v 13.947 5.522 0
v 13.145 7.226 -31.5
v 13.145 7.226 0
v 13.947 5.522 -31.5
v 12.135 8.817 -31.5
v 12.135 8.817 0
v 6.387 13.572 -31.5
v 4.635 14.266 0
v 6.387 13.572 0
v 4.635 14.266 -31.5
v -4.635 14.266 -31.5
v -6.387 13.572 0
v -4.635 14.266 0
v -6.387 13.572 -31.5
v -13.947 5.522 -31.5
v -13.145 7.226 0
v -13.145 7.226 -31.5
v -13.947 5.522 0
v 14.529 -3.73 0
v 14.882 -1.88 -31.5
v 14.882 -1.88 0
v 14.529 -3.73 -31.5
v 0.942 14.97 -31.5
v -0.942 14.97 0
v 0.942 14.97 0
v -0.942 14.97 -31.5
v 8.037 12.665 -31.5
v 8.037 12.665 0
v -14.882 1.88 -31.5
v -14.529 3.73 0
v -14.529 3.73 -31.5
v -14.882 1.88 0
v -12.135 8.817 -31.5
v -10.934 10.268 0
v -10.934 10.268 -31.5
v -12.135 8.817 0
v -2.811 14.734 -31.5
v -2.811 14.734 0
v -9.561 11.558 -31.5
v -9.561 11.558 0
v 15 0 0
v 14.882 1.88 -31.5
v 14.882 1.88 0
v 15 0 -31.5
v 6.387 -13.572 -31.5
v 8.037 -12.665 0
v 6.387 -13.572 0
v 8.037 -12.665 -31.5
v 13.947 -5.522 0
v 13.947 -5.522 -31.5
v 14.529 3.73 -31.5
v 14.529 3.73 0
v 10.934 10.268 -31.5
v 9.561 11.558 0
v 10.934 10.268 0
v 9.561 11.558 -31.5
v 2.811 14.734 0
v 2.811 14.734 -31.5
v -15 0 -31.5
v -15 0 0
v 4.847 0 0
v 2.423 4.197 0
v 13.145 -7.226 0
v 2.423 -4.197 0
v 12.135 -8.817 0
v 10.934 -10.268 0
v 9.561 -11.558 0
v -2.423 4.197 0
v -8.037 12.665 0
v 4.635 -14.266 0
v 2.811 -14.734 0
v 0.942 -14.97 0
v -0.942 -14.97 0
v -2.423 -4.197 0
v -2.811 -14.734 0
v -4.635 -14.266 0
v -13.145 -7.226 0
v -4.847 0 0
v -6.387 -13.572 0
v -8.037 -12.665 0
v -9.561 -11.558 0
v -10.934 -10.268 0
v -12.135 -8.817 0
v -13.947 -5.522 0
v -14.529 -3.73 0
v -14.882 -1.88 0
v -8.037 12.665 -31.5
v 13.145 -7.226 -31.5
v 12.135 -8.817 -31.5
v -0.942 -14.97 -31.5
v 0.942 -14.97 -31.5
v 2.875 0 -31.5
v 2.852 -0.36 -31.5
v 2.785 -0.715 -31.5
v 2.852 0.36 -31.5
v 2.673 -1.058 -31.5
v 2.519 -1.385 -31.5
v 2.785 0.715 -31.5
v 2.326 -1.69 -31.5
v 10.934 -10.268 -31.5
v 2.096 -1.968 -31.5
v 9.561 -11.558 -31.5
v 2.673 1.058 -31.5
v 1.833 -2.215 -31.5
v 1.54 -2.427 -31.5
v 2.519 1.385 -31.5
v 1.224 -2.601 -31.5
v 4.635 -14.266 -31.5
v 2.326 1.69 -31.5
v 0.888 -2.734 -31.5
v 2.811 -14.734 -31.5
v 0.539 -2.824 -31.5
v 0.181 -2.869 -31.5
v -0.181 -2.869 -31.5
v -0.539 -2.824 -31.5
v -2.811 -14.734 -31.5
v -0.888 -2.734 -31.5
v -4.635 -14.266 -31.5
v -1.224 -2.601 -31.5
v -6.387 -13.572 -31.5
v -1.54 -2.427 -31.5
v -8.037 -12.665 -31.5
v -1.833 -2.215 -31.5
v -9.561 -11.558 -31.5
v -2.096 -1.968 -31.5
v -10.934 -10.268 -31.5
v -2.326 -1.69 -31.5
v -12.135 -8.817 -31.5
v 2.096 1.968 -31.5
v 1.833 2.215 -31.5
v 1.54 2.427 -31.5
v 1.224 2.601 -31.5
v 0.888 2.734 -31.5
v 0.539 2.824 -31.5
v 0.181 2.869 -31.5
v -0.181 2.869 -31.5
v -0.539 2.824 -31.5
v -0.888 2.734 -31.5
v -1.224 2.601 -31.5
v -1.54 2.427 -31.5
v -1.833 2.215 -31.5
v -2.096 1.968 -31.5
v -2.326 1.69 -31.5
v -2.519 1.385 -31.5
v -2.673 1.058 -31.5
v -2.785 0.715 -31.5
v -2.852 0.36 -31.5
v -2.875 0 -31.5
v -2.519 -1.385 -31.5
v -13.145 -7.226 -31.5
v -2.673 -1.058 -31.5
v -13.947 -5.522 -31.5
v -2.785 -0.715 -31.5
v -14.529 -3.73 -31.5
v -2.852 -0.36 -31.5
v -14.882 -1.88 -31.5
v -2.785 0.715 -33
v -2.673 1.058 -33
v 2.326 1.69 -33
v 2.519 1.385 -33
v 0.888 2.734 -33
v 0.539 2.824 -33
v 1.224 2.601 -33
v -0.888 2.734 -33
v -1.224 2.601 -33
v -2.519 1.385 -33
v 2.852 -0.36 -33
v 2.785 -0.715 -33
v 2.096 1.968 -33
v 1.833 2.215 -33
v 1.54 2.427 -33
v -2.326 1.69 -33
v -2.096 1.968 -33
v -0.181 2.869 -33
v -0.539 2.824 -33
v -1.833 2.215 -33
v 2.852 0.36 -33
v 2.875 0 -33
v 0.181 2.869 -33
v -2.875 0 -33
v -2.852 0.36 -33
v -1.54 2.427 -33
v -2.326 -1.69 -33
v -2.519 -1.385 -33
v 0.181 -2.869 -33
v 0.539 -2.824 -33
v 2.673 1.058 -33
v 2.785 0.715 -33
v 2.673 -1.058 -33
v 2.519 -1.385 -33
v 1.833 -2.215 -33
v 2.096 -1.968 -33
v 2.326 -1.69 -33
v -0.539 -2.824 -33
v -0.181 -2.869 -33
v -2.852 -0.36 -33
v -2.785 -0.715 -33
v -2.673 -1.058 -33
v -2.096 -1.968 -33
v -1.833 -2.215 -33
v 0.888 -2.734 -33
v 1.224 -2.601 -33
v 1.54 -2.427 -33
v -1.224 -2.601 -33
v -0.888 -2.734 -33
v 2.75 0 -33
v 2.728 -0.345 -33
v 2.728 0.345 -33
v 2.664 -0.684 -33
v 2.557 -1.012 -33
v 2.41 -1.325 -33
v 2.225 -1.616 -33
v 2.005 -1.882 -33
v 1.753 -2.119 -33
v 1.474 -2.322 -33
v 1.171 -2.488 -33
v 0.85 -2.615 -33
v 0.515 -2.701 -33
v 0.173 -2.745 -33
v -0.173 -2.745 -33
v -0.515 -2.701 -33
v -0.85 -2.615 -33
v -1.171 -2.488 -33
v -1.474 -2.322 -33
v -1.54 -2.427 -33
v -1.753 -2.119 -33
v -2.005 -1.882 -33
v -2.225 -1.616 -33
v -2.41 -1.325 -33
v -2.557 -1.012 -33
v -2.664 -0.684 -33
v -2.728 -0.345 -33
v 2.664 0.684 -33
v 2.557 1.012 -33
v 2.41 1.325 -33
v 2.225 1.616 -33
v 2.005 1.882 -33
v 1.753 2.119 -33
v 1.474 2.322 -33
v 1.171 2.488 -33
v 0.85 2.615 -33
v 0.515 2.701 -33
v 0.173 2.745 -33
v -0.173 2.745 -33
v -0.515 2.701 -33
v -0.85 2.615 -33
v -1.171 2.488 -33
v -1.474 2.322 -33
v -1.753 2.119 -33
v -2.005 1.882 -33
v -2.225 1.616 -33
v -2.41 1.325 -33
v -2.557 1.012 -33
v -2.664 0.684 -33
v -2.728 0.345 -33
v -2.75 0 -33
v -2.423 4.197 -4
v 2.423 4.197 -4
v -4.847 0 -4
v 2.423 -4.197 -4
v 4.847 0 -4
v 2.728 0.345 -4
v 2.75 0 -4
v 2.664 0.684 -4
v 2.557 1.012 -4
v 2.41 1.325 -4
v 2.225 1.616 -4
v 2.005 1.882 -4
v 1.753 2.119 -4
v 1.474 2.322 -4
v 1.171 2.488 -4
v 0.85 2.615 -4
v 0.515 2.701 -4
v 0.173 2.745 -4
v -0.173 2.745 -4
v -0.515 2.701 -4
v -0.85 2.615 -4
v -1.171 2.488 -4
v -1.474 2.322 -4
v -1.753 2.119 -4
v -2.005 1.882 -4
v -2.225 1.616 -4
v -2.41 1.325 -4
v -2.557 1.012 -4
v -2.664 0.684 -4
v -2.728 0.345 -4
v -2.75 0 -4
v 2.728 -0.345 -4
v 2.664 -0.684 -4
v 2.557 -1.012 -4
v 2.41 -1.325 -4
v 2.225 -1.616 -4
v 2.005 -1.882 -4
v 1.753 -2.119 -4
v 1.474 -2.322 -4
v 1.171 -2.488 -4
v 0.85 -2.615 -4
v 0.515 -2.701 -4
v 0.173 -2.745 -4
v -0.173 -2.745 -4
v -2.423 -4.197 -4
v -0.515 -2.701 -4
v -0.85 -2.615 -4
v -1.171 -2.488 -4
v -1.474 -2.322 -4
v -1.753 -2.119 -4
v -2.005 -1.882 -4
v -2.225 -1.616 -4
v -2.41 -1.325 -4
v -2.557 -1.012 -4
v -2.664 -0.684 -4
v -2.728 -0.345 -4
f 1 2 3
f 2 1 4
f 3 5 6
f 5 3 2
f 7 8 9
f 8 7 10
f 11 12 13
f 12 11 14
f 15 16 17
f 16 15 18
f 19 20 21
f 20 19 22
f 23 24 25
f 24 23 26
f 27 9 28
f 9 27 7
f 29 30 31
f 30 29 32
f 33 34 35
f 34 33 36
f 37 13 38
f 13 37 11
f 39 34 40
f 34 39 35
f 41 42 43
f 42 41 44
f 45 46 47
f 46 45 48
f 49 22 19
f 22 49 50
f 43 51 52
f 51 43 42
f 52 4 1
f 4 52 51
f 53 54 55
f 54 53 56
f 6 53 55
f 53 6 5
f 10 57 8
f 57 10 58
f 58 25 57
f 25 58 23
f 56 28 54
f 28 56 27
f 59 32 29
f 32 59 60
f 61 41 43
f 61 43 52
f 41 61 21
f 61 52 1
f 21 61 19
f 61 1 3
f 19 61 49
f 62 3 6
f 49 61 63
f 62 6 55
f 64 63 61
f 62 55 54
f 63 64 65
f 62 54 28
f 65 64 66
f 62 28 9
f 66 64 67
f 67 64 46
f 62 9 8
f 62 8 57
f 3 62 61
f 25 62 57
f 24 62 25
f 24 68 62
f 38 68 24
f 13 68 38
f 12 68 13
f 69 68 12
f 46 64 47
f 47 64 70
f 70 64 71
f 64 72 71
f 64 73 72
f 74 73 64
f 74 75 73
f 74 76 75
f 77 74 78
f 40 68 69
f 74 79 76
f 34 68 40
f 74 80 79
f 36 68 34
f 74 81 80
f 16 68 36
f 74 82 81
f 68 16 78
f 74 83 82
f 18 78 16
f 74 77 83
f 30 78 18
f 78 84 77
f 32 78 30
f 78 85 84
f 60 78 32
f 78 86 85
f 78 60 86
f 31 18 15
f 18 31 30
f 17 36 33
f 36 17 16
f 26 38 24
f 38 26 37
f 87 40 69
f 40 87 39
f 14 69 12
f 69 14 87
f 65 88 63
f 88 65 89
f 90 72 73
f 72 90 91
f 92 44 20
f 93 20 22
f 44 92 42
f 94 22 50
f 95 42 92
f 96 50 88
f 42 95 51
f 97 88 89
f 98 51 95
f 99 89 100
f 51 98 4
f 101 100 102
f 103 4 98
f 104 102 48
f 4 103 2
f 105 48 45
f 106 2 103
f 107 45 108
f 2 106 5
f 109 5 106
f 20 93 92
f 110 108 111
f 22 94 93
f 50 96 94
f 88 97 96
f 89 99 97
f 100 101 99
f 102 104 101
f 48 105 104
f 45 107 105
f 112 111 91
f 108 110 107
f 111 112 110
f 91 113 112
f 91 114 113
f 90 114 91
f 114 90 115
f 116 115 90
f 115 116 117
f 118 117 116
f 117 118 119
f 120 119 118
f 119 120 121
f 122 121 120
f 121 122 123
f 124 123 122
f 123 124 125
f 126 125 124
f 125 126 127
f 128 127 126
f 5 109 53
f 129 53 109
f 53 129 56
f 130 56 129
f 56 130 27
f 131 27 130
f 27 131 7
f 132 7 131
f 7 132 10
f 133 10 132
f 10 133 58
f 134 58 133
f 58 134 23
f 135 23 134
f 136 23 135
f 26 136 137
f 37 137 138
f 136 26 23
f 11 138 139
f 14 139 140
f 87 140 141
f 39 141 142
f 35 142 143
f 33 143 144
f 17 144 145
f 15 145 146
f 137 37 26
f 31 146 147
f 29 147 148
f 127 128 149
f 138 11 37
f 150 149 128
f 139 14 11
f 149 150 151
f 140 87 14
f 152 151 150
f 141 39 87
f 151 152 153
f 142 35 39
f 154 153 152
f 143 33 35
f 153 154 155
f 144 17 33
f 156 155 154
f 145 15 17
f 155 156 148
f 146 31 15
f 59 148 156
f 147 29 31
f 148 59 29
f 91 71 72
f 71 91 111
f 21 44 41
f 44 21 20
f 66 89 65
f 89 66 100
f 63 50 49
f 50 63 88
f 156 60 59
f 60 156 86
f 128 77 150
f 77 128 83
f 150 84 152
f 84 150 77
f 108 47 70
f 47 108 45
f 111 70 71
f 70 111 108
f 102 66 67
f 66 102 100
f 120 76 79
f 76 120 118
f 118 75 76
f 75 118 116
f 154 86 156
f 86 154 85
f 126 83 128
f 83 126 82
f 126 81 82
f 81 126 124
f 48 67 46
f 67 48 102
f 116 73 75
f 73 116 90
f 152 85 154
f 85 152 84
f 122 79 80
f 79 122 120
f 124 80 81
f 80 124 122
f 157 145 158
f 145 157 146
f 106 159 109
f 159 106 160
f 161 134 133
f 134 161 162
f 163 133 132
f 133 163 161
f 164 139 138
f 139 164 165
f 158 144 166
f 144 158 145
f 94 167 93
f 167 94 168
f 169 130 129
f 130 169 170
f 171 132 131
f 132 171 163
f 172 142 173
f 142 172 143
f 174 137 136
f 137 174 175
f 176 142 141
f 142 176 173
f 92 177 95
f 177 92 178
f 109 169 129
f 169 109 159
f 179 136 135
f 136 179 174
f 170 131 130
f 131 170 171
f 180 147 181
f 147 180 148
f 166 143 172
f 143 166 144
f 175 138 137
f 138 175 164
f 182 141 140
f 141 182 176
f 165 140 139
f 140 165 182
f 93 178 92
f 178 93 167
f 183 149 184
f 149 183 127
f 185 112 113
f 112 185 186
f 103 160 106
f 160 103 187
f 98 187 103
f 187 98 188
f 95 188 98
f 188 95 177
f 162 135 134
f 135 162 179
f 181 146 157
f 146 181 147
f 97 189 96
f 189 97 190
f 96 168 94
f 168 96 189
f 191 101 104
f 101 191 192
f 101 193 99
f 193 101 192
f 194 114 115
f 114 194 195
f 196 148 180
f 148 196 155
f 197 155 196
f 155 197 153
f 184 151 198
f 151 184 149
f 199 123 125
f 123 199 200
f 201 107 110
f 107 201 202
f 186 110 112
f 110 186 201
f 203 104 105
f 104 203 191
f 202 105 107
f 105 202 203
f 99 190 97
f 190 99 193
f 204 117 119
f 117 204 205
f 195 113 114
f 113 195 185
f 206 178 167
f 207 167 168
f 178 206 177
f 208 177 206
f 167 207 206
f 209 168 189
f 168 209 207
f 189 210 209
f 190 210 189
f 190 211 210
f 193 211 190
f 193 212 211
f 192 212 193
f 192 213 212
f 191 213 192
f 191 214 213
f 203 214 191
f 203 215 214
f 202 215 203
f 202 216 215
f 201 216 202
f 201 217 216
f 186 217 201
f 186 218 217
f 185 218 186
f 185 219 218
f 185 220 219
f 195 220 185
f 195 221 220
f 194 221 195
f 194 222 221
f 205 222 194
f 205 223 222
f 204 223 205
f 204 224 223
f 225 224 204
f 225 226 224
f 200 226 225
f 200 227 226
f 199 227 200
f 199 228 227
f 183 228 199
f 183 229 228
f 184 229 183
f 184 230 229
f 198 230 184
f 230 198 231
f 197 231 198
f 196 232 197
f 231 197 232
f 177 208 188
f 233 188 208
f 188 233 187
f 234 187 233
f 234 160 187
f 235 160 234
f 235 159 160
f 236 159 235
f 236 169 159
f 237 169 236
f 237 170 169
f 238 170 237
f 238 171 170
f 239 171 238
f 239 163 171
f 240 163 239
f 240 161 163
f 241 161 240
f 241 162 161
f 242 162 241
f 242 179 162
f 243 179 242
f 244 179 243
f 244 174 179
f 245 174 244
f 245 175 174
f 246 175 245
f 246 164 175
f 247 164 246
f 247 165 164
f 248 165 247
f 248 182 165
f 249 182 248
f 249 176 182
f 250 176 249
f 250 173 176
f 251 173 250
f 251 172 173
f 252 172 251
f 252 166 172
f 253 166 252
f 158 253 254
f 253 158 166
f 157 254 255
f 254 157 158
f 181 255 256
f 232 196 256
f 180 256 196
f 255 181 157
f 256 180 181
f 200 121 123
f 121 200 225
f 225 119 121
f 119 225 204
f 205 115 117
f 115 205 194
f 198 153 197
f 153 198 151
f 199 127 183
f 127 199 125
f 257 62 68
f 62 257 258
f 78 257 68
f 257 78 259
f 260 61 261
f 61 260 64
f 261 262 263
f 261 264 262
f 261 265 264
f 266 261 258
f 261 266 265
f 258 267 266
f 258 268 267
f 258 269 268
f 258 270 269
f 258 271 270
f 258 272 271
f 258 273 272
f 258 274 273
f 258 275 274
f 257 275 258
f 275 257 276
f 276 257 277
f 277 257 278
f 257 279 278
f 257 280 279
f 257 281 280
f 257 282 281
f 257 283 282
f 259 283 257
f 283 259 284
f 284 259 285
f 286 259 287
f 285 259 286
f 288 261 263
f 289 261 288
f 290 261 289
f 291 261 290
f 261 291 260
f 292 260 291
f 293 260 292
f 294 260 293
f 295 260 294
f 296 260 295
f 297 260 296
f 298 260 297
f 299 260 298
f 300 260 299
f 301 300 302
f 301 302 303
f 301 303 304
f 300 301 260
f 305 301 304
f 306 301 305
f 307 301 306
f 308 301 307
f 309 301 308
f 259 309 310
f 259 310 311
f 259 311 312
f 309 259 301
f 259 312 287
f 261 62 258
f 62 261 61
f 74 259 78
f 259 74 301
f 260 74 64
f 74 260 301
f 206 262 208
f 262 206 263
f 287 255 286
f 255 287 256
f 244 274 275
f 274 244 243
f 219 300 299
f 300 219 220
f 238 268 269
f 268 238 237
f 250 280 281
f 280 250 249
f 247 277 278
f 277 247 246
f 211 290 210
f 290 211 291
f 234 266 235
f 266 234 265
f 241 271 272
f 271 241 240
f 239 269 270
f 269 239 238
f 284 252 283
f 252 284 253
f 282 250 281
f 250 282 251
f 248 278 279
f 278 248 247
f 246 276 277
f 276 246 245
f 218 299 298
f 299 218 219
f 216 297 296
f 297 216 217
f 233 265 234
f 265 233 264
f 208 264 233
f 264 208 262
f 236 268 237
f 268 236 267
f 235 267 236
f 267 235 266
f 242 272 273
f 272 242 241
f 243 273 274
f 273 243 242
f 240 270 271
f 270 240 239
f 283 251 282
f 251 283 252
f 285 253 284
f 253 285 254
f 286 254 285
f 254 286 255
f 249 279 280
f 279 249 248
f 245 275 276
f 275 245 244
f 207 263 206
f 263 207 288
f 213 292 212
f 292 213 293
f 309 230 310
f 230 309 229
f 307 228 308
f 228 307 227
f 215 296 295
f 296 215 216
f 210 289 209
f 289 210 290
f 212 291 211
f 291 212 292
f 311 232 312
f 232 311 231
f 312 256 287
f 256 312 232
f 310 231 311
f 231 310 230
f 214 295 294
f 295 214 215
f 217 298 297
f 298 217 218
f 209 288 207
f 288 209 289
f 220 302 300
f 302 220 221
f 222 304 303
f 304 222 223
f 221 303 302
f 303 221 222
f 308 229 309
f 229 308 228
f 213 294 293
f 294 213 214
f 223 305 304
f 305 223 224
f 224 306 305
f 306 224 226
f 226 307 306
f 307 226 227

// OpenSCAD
$fn = 50;


difference() {
	union() {
		translate(v = [0, 0, -31.5000000000]) {
			cylinder(h = 31.5000000000, r = 15.0000000000);
		}
		#translate(v = [0, 0, -33.0000000000]) {
			cylinder(h = 33, r = 2.8750000000);
		}
	}
	union() {
		translate(v = [0, 0, 0]) {
			rotate(a = [0, 0, 0]) {
				difference() {
					union() {
						translate(v = [0, 0, -4]) {
							linear_extrude(height = 4) {
								polygon(points = [[4.8468000000, 0.0000000000], [2.4234000000, 4.1974519271], [-2.4234000000, 4.1974519271], [-4.8468000000, 0.0000000000], [-2.4234000000, -4.1974519271], [2.4234000000, -4.1974519271]]);
							}
						}
					}
					union();
				}
			}
		}
		#translate(v = [0, 0, -100.0000000000]) {
			cylinder(h = 200, r = 2.7500000000);
		}
	}
}
